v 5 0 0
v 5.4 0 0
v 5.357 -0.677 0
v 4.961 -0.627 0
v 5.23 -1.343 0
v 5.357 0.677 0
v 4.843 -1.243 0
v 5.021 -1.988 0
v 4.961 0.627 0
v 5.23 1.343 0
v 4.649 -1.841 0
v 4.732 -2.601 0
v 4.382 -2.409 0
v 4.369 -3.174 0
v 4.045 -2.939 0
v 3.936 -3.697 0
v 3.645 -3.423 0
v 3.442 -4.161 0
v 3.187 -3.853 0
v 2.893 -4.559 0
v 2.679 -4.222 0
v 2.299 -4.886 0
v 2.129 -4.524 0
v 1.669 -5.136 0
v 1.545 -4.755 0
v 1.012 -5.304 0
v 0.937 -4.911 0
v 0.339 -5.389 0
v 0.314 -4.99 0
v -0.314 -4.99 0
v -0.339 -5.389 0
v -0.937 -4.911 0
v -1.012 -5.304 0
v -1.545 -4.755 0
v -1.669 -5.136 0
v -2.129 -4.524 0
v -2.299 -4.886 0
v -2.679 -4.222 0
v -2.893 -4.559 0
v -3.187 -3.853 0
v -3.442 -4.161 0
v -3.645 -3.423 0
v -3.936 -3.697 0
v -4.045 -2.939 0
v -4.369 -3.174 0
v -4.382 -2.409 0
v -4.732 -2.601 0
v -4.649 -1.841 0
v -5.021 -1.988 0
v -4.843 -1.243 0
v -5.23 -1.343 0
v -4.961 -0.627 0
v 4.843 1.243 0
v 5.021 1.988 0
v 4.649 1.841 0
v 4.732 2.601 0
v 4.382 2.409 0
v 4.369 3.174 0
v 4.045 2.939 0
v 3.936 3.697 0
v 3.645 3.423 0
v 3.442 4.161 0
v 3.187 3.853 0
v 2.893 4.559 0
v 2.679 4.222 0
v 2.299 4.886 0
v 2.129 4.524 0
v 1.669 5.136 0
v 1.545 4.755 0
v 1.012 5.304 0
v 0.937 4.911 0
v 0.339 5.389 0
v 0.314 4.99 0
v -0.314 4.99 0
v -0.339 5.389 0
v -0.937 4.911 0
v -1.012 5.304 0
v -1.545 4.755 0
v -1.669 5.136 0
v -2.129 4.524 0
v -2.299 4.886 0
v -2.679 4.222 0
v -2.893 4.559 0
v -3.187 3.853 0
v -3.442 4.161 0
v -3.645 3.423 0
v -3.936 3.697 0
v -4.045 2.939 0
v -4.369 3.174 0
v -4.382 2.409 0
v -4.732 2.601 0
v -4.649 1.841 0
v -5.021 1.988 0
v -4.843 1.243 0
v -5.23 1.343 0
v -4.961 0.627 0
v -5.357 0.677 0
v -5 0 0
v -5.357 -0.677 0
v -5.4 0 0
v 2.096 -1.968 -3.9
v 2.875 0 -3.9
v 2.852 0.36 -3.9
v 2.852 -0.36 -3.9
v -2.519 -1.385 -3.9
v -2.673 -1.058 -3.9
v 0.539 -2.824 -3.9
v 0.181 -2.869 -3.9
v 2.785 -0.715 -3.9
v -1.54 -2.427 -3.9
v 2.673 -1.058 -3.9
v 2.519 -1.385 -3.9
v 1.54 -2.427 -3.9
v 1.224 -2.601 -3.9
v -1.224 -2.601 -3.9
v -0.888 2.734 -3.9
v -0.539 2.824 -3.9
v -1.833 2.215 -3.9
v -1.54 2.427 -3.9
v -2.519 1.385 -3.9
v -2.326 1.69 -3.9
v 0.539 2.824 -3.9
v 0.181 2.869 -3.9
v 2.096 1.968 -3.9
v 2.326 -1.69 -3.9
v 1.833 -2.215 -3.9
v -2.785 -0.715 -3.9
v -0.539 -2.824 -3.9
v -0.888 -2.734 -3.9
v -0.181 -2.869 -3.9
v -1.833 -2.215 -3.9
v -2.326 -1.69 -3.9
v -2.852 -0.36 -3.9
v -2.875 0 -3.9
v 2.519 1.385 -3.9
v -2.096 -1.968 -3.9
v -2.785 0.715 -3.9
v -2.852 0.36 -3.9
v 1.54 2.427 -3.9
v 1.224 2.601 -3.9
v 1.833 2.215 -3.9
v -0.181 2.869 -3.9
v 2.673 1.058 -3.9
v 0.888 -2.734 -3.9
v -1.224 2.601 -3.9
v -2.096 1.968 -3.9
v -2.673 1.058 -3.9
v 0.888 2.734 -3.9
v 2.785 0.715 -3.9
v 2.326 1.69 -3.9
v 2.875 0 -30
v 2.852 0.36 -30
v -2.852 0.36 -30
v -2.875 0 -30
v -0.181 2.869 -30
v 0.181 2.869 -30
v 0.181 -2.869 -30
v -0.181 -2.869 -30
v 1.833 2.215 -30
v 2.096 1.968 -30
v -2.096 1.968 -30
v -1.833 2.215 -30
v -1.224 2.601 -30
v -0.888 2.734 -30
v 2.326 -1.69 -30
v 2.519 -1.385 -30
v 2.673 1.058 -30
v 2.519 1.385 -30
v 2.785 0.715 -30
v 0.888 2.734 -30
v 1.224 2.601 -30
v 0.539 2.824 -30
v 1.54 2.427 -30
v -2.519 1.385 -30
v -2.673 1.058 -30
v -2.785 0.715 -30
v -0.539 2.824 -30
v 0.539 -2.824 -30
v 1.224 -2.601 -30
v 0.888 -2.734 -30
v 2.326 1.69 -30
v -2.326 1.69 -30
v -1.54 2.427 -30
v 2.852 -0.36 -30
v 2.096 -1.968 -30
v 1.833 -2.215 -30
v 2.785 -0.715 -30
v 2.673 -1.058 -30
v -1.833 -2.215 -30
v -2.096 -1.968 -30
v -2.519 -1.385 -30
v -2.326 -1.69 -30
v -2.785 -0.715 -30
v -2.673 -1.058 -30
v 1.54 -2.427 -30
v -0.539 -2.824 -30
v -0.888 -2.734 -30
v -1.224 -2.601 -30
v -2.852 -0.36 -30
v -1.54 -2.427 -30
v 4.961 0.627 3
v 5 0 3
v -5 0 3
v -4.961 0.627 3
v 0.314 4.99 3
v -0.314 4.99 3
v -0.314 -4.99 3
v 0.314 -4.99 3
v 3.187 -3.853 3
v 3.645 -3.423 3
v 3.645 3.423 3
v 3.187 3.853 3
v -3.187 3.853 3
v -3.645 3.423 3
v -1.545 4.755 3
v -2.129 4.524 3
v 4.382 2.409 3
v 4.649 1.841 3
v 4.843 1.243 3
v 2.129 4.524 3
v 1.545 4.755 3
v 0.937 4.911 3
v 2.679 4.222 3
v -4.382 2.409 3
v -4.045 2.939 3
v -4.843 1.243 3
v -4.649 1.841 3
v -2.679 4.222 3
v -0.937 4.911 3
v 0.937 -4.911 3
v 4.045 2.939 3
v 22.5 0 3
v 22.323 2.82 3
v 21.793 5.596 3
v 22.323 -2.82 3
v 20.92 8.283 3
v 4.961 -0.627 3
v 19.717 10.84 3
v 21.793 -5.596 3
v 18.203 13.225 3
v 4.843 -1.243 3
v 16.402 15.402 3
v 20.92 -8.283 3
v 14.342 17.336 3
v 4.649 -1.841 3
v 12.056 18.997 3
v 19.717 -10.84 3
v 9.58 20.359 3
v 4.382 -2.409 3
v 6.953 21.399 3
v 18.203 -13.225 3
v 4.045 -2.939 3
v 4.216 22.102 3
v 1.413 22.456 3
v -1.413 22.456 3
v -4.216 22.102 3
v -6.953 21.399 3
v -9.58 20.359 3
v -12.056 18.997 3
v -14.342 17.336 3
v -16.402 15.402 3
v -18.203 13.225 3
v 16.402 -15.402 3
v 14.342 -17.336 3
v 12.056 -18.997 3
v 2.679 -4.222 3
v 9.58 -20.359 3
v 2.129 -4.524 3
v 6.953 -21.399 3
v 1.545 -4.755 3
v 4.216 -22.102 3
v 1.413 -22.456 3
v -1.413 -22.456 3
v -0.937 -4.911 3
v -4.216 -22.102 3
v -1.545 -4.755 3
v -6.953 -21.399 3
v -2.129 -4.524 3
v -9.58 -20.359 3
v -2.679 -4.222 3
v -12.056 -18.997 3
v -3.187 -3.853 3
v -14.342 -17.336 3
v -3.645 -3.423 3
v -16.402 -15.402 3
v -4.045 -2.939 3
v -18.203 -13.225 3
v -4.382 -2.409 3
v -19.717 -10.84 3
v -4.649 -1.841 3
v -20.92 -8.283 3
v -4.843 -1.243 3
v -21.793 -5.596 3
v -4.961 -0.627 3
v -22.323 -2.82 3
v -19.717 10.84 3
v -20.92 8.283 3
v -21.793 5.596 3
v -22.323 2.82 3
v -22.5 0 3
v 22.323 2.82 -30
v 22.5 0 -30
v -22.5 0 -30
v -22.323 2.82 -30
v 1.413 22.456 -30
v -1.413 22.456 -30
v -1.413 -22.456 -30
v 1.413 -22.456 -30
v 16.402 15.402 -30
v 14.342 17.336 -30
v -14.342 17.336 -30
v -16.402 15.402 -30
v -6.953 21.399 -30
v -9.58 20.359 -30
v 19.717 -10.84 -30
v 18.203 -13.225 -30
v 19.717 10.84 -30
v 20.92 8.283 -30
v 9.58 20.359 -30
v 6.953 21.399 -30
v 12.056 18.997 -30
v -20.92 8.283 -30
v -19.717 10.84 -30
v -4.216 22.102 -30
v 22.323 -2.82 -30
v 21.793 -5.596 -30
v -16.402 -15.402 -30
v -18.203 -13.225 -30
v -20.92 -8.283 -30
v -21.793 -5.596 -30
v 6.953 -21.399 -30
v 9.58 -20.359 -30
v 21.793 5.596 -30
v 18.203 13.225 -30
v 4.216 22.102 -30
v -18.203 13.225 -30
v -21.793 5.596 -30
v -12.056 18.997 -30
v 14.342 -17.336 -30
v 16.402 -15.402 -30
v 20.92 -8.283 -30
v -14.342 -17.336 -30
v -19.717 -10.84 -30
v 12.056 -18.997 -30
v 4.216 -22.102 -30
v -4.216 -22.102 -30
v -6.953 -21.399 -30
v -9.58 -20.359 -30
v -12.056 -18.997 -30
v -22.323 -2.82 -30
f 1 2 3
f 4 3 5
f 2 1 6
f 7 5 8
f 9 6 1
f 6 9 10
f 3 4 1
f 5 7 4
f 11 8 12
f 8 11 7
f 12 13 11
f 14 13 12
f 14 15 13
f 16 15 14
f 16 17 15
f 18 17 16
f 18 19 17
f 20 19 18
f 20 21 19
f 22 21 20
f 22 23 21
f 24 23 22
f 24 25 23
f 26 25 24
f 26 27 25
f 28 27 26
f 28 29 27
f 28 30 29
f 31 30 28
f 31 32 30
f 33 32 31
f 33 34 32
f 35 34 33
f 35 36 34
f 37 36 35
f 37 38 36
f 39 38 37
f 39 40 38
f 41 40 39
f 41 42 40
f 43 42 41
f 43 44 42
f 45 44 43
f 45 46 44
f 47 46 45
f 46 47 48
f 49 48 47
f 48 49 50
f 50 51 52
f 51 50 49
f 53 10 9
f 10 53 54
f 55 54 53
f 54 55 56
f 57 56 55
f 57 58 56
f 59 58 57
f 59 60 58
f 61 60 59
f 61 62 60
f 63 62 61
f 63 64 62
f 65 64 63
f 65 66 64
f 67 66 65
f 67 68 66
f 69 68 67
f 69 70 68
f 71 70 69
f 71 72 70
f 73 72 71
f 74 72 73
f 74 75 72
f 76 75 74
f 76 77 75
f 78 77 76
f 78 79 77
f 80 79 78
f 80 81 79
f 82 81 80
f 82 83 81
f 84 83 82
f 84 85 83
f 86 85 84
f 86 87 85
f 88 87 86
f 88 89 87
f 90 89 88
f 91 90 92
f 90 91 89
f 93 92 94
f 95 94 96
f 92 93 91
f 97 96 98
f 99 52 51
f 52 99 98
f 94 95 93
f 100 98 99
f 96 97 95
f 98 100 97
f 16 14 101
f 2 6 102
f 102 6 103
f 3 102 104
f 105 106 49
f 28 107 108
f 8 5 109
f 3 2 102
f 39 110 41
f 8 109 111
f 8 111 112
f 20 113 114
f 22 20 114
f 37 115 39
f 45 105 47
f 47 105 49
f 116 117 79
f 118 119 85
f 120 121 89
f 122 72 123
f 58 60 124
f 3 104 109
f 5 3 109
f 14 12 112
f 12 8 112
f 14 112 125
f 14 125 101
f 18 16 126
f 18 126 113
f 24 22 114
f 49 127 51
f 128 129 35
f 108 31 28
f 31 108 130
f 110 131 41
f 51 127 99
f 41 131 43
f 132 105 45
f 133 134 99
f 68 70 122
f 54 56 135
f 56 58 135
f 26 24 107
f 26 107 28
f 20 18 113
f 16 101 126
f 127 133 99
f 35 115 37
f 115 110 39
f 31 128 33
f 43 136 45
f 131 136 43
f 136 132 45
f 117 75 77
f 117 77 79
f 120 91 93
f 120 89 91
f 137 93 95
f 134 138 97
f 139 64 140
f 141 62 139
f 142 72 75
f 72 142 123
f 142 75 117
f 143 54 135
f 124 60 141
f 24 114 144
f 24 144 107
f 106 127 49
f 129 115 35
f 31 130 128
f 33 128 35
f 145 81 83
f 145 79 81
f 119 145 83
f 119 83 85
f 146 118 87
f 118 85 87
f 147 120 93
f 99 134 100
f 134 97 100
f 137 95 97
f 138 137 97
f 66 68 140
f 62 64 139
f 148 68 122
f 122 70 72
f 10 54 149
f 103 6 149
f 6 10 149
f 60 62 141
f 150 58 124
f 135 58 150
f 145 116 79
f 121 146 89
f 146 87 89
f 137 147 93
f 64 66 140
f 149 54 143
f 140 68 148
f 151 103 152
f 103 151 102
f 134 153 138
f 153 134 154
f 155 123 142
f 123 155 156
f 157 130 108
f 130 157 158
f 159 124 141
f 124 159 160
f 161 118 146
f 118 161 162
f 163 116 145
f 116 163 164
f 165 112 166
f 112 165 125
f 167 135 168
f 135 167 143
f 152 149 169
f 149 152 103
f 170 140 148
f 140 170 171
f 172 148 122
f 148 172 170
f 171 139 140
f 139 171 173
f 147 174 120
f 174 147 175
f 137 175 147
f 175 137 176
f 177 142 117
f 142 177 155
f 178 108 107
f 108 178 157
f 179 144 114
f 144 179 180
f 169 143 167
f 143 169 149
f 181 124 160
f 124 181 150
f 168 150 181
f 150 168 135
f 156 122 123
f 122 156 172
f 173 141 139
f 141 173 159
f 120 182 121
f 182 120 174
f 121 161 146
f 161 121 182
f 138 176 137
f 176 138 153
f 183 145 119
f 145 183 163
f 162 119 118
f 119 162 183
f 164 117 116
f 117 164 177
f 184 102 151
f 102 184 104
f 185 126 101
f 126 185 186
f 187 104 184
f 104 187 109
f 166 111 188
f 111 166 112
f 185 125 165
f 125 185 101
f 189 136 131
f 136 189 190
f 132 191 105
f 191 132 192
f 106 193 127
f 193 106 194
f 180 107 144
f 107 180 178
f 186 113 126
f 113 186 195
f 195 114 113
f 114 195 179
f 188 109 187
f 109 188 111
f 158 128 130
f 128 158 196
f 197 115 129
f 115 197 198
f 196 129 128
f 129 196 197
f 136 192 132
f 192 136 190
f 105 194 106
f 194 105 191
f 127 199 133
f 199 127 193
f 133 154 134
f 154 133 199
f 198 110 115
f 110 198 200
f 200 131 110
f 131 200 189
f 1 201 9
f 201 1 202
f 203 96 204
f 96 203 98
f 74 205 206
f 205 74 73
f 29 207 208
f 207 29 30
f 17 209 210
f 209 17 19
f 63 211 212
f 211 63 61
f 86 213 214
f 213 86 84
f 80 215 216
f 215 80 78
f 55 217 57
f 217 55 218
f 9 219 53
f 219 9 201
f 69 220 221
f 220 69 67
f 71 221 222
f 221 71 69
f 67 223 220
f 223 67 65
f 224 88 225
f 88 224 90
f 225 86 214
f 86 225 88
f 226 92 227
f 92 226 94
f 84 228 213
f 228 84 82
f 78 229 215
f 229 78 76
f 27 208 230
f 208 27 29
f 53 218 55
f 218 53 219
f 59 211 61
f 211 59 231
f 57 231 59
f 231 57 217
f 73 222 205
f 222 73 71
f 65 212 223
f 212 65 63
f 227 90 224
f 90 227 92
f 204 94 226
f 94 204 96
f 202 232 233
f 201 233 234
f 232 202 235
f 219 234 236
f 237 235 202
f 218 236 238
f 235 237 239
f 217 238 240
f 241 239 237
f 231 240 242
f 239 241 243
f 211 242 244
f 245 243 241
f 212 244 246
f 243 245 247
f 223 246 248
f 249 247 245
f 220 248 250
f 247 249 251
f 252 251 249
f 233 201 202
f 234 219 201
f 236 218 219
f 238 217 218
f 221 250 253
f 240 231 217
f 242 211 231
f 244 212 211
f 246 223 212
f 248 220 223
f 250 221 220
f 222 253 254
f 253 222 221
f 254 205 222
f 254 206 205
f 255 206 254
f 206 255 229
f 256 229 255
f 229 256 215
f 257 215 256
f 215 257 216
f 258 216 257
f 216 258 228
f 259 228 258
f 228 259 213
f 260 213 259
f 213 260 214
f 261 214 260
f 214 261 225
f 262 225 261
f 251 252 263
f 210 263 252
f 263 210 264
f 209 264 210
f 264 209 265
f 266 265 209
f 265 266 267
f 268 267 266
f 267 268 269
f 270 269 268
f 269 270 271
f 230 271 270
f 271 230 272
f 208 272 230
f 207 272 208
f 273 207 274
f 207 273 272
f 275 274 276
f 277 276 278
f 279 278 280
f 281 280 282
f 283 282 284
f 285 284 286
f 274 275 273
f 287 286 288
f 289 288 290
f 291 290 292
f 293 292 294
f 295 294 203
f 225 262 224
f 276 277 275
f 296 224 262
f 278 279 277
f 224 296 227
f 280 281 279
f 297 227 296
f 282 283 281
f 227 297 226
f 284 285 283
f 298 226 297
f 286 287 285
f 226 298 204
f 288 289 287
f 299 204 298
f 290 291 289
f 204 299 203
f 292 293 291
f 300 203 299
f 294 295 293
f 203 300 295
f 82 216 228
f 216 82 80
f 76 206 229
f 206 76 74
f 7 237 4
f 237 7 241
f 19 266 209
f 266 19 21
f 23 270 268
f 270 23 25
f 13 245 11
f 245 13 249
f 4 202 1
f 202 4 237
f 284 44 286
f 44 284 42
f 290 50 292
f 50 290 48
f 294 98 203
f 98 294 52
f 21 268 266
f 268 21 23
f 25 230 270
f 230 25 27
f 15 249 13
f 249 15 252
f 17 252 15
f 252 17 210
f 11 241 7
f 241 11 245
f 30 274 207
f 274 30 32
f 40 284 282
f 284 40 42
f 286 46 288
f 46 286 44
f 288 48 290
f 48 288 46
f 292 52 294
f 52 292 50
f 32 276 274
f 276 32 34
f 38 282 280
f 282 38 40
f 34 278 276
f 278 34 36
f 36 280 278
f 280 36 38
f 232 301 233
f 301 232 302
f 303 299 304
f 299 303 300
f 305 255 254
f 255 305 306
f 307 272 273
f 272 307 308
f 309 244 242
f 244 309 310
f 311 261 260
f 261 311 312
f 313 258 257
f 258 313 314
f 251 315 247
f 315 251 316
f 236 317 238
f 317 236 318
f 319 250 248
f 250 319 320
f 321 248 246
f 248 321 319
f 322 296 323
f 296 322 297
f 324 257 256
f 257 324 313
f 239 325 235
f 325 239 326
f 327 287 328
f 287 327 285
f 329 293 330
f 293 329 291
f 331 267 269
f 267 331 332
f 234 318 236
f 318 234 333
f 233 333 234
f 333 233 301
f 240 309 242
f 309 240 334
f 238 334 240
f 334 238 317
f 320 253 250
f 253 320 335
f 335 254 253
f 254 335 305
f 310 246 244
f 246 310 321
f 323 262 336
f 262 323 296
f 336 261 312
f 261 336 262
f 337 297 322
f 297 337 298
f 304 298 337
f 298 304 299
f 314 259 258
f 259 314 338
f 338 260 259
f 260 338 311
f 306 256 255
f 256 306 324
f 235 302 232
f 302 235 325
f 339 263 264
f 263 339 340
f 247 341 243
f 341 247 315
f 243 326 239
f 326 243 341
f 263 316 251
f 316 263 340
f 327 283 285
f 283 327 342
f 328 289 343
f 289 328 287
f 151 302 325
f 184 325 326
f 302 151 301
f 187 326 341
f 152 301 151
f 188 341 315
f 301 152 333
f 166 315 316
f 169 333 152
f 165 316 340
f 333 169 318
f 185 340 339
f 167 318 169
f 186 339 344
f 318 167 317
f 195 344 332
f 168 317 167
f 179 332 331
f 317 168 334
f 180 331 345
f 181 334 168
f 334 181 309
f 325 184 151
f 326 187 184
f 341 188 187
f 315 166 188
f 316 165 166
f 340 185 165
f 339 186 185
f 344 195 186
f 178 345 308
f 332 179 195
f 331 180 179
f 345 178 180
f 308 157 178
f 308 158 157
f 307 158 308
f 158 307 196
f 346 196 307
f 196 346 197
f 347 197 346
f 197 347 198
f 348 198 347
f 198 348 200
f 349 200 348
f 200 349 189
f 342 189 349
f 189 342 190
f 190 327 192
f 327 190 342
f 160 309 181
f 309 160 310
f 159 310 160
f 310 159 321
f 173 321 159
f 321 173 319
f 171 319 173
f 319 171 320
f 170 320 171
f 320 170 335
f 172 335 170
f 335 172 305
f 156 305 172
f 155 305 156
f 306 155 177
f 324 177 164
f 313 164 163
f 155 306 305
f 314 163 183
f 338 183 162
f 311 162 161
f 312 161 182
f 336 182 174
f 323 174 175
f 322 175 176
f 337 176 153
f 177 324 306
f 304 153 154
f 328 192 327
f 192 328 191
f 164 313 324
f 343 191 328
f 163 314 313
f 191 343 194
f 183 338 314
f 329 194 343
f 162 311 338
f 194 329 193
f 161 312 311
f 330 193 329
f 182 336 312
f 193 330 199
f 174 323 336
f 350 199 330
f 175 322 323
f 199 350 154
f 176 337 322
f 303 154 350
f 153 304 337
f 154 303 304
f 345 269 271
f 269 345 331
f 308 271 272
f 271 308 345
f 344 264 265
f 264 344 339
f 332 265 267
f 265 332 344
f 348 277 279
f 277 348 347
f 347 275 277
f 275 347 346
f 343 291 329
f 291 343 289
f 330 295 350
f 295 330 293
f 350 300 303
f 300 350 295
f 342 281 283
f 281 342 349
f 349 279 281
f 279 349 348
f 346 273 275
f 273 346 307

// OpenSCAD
$fn = 50;


difference() {
	union() {
		translate(v = [0, 0, -30.0000000000]) {
			cylinder(h = 33, r = 22.5000000000);
		}
	}
	union() {
		translate(v = [0, 0, 0]) {
			rotate(a = [0, 0, 0]) {
				difference() {
					union() {
						translate(v = [0, 0, -33.0000000000]) {
							cylinder(h = 33, r = 2.6000000000);
						}
						translate(v = [0, 0, -3.9000000000]) {
							cylinder(h = 3.9000000000, r1 = 2.8750000000, r2 = 5.4000000000);
						}
						translate(v = [0, 0, -33.0000000000]) {
							cylinder(h = 33, r = 2.8750000000);
						}
						translate(v = [0, 0, -33.0000000000]) {
							cylinder(h = 33, r = 2.6000000000);
						}
					}
					union();
				}
			}
		}
		#cylinder(h = 3, r = 5.0000000000);
	}
}
